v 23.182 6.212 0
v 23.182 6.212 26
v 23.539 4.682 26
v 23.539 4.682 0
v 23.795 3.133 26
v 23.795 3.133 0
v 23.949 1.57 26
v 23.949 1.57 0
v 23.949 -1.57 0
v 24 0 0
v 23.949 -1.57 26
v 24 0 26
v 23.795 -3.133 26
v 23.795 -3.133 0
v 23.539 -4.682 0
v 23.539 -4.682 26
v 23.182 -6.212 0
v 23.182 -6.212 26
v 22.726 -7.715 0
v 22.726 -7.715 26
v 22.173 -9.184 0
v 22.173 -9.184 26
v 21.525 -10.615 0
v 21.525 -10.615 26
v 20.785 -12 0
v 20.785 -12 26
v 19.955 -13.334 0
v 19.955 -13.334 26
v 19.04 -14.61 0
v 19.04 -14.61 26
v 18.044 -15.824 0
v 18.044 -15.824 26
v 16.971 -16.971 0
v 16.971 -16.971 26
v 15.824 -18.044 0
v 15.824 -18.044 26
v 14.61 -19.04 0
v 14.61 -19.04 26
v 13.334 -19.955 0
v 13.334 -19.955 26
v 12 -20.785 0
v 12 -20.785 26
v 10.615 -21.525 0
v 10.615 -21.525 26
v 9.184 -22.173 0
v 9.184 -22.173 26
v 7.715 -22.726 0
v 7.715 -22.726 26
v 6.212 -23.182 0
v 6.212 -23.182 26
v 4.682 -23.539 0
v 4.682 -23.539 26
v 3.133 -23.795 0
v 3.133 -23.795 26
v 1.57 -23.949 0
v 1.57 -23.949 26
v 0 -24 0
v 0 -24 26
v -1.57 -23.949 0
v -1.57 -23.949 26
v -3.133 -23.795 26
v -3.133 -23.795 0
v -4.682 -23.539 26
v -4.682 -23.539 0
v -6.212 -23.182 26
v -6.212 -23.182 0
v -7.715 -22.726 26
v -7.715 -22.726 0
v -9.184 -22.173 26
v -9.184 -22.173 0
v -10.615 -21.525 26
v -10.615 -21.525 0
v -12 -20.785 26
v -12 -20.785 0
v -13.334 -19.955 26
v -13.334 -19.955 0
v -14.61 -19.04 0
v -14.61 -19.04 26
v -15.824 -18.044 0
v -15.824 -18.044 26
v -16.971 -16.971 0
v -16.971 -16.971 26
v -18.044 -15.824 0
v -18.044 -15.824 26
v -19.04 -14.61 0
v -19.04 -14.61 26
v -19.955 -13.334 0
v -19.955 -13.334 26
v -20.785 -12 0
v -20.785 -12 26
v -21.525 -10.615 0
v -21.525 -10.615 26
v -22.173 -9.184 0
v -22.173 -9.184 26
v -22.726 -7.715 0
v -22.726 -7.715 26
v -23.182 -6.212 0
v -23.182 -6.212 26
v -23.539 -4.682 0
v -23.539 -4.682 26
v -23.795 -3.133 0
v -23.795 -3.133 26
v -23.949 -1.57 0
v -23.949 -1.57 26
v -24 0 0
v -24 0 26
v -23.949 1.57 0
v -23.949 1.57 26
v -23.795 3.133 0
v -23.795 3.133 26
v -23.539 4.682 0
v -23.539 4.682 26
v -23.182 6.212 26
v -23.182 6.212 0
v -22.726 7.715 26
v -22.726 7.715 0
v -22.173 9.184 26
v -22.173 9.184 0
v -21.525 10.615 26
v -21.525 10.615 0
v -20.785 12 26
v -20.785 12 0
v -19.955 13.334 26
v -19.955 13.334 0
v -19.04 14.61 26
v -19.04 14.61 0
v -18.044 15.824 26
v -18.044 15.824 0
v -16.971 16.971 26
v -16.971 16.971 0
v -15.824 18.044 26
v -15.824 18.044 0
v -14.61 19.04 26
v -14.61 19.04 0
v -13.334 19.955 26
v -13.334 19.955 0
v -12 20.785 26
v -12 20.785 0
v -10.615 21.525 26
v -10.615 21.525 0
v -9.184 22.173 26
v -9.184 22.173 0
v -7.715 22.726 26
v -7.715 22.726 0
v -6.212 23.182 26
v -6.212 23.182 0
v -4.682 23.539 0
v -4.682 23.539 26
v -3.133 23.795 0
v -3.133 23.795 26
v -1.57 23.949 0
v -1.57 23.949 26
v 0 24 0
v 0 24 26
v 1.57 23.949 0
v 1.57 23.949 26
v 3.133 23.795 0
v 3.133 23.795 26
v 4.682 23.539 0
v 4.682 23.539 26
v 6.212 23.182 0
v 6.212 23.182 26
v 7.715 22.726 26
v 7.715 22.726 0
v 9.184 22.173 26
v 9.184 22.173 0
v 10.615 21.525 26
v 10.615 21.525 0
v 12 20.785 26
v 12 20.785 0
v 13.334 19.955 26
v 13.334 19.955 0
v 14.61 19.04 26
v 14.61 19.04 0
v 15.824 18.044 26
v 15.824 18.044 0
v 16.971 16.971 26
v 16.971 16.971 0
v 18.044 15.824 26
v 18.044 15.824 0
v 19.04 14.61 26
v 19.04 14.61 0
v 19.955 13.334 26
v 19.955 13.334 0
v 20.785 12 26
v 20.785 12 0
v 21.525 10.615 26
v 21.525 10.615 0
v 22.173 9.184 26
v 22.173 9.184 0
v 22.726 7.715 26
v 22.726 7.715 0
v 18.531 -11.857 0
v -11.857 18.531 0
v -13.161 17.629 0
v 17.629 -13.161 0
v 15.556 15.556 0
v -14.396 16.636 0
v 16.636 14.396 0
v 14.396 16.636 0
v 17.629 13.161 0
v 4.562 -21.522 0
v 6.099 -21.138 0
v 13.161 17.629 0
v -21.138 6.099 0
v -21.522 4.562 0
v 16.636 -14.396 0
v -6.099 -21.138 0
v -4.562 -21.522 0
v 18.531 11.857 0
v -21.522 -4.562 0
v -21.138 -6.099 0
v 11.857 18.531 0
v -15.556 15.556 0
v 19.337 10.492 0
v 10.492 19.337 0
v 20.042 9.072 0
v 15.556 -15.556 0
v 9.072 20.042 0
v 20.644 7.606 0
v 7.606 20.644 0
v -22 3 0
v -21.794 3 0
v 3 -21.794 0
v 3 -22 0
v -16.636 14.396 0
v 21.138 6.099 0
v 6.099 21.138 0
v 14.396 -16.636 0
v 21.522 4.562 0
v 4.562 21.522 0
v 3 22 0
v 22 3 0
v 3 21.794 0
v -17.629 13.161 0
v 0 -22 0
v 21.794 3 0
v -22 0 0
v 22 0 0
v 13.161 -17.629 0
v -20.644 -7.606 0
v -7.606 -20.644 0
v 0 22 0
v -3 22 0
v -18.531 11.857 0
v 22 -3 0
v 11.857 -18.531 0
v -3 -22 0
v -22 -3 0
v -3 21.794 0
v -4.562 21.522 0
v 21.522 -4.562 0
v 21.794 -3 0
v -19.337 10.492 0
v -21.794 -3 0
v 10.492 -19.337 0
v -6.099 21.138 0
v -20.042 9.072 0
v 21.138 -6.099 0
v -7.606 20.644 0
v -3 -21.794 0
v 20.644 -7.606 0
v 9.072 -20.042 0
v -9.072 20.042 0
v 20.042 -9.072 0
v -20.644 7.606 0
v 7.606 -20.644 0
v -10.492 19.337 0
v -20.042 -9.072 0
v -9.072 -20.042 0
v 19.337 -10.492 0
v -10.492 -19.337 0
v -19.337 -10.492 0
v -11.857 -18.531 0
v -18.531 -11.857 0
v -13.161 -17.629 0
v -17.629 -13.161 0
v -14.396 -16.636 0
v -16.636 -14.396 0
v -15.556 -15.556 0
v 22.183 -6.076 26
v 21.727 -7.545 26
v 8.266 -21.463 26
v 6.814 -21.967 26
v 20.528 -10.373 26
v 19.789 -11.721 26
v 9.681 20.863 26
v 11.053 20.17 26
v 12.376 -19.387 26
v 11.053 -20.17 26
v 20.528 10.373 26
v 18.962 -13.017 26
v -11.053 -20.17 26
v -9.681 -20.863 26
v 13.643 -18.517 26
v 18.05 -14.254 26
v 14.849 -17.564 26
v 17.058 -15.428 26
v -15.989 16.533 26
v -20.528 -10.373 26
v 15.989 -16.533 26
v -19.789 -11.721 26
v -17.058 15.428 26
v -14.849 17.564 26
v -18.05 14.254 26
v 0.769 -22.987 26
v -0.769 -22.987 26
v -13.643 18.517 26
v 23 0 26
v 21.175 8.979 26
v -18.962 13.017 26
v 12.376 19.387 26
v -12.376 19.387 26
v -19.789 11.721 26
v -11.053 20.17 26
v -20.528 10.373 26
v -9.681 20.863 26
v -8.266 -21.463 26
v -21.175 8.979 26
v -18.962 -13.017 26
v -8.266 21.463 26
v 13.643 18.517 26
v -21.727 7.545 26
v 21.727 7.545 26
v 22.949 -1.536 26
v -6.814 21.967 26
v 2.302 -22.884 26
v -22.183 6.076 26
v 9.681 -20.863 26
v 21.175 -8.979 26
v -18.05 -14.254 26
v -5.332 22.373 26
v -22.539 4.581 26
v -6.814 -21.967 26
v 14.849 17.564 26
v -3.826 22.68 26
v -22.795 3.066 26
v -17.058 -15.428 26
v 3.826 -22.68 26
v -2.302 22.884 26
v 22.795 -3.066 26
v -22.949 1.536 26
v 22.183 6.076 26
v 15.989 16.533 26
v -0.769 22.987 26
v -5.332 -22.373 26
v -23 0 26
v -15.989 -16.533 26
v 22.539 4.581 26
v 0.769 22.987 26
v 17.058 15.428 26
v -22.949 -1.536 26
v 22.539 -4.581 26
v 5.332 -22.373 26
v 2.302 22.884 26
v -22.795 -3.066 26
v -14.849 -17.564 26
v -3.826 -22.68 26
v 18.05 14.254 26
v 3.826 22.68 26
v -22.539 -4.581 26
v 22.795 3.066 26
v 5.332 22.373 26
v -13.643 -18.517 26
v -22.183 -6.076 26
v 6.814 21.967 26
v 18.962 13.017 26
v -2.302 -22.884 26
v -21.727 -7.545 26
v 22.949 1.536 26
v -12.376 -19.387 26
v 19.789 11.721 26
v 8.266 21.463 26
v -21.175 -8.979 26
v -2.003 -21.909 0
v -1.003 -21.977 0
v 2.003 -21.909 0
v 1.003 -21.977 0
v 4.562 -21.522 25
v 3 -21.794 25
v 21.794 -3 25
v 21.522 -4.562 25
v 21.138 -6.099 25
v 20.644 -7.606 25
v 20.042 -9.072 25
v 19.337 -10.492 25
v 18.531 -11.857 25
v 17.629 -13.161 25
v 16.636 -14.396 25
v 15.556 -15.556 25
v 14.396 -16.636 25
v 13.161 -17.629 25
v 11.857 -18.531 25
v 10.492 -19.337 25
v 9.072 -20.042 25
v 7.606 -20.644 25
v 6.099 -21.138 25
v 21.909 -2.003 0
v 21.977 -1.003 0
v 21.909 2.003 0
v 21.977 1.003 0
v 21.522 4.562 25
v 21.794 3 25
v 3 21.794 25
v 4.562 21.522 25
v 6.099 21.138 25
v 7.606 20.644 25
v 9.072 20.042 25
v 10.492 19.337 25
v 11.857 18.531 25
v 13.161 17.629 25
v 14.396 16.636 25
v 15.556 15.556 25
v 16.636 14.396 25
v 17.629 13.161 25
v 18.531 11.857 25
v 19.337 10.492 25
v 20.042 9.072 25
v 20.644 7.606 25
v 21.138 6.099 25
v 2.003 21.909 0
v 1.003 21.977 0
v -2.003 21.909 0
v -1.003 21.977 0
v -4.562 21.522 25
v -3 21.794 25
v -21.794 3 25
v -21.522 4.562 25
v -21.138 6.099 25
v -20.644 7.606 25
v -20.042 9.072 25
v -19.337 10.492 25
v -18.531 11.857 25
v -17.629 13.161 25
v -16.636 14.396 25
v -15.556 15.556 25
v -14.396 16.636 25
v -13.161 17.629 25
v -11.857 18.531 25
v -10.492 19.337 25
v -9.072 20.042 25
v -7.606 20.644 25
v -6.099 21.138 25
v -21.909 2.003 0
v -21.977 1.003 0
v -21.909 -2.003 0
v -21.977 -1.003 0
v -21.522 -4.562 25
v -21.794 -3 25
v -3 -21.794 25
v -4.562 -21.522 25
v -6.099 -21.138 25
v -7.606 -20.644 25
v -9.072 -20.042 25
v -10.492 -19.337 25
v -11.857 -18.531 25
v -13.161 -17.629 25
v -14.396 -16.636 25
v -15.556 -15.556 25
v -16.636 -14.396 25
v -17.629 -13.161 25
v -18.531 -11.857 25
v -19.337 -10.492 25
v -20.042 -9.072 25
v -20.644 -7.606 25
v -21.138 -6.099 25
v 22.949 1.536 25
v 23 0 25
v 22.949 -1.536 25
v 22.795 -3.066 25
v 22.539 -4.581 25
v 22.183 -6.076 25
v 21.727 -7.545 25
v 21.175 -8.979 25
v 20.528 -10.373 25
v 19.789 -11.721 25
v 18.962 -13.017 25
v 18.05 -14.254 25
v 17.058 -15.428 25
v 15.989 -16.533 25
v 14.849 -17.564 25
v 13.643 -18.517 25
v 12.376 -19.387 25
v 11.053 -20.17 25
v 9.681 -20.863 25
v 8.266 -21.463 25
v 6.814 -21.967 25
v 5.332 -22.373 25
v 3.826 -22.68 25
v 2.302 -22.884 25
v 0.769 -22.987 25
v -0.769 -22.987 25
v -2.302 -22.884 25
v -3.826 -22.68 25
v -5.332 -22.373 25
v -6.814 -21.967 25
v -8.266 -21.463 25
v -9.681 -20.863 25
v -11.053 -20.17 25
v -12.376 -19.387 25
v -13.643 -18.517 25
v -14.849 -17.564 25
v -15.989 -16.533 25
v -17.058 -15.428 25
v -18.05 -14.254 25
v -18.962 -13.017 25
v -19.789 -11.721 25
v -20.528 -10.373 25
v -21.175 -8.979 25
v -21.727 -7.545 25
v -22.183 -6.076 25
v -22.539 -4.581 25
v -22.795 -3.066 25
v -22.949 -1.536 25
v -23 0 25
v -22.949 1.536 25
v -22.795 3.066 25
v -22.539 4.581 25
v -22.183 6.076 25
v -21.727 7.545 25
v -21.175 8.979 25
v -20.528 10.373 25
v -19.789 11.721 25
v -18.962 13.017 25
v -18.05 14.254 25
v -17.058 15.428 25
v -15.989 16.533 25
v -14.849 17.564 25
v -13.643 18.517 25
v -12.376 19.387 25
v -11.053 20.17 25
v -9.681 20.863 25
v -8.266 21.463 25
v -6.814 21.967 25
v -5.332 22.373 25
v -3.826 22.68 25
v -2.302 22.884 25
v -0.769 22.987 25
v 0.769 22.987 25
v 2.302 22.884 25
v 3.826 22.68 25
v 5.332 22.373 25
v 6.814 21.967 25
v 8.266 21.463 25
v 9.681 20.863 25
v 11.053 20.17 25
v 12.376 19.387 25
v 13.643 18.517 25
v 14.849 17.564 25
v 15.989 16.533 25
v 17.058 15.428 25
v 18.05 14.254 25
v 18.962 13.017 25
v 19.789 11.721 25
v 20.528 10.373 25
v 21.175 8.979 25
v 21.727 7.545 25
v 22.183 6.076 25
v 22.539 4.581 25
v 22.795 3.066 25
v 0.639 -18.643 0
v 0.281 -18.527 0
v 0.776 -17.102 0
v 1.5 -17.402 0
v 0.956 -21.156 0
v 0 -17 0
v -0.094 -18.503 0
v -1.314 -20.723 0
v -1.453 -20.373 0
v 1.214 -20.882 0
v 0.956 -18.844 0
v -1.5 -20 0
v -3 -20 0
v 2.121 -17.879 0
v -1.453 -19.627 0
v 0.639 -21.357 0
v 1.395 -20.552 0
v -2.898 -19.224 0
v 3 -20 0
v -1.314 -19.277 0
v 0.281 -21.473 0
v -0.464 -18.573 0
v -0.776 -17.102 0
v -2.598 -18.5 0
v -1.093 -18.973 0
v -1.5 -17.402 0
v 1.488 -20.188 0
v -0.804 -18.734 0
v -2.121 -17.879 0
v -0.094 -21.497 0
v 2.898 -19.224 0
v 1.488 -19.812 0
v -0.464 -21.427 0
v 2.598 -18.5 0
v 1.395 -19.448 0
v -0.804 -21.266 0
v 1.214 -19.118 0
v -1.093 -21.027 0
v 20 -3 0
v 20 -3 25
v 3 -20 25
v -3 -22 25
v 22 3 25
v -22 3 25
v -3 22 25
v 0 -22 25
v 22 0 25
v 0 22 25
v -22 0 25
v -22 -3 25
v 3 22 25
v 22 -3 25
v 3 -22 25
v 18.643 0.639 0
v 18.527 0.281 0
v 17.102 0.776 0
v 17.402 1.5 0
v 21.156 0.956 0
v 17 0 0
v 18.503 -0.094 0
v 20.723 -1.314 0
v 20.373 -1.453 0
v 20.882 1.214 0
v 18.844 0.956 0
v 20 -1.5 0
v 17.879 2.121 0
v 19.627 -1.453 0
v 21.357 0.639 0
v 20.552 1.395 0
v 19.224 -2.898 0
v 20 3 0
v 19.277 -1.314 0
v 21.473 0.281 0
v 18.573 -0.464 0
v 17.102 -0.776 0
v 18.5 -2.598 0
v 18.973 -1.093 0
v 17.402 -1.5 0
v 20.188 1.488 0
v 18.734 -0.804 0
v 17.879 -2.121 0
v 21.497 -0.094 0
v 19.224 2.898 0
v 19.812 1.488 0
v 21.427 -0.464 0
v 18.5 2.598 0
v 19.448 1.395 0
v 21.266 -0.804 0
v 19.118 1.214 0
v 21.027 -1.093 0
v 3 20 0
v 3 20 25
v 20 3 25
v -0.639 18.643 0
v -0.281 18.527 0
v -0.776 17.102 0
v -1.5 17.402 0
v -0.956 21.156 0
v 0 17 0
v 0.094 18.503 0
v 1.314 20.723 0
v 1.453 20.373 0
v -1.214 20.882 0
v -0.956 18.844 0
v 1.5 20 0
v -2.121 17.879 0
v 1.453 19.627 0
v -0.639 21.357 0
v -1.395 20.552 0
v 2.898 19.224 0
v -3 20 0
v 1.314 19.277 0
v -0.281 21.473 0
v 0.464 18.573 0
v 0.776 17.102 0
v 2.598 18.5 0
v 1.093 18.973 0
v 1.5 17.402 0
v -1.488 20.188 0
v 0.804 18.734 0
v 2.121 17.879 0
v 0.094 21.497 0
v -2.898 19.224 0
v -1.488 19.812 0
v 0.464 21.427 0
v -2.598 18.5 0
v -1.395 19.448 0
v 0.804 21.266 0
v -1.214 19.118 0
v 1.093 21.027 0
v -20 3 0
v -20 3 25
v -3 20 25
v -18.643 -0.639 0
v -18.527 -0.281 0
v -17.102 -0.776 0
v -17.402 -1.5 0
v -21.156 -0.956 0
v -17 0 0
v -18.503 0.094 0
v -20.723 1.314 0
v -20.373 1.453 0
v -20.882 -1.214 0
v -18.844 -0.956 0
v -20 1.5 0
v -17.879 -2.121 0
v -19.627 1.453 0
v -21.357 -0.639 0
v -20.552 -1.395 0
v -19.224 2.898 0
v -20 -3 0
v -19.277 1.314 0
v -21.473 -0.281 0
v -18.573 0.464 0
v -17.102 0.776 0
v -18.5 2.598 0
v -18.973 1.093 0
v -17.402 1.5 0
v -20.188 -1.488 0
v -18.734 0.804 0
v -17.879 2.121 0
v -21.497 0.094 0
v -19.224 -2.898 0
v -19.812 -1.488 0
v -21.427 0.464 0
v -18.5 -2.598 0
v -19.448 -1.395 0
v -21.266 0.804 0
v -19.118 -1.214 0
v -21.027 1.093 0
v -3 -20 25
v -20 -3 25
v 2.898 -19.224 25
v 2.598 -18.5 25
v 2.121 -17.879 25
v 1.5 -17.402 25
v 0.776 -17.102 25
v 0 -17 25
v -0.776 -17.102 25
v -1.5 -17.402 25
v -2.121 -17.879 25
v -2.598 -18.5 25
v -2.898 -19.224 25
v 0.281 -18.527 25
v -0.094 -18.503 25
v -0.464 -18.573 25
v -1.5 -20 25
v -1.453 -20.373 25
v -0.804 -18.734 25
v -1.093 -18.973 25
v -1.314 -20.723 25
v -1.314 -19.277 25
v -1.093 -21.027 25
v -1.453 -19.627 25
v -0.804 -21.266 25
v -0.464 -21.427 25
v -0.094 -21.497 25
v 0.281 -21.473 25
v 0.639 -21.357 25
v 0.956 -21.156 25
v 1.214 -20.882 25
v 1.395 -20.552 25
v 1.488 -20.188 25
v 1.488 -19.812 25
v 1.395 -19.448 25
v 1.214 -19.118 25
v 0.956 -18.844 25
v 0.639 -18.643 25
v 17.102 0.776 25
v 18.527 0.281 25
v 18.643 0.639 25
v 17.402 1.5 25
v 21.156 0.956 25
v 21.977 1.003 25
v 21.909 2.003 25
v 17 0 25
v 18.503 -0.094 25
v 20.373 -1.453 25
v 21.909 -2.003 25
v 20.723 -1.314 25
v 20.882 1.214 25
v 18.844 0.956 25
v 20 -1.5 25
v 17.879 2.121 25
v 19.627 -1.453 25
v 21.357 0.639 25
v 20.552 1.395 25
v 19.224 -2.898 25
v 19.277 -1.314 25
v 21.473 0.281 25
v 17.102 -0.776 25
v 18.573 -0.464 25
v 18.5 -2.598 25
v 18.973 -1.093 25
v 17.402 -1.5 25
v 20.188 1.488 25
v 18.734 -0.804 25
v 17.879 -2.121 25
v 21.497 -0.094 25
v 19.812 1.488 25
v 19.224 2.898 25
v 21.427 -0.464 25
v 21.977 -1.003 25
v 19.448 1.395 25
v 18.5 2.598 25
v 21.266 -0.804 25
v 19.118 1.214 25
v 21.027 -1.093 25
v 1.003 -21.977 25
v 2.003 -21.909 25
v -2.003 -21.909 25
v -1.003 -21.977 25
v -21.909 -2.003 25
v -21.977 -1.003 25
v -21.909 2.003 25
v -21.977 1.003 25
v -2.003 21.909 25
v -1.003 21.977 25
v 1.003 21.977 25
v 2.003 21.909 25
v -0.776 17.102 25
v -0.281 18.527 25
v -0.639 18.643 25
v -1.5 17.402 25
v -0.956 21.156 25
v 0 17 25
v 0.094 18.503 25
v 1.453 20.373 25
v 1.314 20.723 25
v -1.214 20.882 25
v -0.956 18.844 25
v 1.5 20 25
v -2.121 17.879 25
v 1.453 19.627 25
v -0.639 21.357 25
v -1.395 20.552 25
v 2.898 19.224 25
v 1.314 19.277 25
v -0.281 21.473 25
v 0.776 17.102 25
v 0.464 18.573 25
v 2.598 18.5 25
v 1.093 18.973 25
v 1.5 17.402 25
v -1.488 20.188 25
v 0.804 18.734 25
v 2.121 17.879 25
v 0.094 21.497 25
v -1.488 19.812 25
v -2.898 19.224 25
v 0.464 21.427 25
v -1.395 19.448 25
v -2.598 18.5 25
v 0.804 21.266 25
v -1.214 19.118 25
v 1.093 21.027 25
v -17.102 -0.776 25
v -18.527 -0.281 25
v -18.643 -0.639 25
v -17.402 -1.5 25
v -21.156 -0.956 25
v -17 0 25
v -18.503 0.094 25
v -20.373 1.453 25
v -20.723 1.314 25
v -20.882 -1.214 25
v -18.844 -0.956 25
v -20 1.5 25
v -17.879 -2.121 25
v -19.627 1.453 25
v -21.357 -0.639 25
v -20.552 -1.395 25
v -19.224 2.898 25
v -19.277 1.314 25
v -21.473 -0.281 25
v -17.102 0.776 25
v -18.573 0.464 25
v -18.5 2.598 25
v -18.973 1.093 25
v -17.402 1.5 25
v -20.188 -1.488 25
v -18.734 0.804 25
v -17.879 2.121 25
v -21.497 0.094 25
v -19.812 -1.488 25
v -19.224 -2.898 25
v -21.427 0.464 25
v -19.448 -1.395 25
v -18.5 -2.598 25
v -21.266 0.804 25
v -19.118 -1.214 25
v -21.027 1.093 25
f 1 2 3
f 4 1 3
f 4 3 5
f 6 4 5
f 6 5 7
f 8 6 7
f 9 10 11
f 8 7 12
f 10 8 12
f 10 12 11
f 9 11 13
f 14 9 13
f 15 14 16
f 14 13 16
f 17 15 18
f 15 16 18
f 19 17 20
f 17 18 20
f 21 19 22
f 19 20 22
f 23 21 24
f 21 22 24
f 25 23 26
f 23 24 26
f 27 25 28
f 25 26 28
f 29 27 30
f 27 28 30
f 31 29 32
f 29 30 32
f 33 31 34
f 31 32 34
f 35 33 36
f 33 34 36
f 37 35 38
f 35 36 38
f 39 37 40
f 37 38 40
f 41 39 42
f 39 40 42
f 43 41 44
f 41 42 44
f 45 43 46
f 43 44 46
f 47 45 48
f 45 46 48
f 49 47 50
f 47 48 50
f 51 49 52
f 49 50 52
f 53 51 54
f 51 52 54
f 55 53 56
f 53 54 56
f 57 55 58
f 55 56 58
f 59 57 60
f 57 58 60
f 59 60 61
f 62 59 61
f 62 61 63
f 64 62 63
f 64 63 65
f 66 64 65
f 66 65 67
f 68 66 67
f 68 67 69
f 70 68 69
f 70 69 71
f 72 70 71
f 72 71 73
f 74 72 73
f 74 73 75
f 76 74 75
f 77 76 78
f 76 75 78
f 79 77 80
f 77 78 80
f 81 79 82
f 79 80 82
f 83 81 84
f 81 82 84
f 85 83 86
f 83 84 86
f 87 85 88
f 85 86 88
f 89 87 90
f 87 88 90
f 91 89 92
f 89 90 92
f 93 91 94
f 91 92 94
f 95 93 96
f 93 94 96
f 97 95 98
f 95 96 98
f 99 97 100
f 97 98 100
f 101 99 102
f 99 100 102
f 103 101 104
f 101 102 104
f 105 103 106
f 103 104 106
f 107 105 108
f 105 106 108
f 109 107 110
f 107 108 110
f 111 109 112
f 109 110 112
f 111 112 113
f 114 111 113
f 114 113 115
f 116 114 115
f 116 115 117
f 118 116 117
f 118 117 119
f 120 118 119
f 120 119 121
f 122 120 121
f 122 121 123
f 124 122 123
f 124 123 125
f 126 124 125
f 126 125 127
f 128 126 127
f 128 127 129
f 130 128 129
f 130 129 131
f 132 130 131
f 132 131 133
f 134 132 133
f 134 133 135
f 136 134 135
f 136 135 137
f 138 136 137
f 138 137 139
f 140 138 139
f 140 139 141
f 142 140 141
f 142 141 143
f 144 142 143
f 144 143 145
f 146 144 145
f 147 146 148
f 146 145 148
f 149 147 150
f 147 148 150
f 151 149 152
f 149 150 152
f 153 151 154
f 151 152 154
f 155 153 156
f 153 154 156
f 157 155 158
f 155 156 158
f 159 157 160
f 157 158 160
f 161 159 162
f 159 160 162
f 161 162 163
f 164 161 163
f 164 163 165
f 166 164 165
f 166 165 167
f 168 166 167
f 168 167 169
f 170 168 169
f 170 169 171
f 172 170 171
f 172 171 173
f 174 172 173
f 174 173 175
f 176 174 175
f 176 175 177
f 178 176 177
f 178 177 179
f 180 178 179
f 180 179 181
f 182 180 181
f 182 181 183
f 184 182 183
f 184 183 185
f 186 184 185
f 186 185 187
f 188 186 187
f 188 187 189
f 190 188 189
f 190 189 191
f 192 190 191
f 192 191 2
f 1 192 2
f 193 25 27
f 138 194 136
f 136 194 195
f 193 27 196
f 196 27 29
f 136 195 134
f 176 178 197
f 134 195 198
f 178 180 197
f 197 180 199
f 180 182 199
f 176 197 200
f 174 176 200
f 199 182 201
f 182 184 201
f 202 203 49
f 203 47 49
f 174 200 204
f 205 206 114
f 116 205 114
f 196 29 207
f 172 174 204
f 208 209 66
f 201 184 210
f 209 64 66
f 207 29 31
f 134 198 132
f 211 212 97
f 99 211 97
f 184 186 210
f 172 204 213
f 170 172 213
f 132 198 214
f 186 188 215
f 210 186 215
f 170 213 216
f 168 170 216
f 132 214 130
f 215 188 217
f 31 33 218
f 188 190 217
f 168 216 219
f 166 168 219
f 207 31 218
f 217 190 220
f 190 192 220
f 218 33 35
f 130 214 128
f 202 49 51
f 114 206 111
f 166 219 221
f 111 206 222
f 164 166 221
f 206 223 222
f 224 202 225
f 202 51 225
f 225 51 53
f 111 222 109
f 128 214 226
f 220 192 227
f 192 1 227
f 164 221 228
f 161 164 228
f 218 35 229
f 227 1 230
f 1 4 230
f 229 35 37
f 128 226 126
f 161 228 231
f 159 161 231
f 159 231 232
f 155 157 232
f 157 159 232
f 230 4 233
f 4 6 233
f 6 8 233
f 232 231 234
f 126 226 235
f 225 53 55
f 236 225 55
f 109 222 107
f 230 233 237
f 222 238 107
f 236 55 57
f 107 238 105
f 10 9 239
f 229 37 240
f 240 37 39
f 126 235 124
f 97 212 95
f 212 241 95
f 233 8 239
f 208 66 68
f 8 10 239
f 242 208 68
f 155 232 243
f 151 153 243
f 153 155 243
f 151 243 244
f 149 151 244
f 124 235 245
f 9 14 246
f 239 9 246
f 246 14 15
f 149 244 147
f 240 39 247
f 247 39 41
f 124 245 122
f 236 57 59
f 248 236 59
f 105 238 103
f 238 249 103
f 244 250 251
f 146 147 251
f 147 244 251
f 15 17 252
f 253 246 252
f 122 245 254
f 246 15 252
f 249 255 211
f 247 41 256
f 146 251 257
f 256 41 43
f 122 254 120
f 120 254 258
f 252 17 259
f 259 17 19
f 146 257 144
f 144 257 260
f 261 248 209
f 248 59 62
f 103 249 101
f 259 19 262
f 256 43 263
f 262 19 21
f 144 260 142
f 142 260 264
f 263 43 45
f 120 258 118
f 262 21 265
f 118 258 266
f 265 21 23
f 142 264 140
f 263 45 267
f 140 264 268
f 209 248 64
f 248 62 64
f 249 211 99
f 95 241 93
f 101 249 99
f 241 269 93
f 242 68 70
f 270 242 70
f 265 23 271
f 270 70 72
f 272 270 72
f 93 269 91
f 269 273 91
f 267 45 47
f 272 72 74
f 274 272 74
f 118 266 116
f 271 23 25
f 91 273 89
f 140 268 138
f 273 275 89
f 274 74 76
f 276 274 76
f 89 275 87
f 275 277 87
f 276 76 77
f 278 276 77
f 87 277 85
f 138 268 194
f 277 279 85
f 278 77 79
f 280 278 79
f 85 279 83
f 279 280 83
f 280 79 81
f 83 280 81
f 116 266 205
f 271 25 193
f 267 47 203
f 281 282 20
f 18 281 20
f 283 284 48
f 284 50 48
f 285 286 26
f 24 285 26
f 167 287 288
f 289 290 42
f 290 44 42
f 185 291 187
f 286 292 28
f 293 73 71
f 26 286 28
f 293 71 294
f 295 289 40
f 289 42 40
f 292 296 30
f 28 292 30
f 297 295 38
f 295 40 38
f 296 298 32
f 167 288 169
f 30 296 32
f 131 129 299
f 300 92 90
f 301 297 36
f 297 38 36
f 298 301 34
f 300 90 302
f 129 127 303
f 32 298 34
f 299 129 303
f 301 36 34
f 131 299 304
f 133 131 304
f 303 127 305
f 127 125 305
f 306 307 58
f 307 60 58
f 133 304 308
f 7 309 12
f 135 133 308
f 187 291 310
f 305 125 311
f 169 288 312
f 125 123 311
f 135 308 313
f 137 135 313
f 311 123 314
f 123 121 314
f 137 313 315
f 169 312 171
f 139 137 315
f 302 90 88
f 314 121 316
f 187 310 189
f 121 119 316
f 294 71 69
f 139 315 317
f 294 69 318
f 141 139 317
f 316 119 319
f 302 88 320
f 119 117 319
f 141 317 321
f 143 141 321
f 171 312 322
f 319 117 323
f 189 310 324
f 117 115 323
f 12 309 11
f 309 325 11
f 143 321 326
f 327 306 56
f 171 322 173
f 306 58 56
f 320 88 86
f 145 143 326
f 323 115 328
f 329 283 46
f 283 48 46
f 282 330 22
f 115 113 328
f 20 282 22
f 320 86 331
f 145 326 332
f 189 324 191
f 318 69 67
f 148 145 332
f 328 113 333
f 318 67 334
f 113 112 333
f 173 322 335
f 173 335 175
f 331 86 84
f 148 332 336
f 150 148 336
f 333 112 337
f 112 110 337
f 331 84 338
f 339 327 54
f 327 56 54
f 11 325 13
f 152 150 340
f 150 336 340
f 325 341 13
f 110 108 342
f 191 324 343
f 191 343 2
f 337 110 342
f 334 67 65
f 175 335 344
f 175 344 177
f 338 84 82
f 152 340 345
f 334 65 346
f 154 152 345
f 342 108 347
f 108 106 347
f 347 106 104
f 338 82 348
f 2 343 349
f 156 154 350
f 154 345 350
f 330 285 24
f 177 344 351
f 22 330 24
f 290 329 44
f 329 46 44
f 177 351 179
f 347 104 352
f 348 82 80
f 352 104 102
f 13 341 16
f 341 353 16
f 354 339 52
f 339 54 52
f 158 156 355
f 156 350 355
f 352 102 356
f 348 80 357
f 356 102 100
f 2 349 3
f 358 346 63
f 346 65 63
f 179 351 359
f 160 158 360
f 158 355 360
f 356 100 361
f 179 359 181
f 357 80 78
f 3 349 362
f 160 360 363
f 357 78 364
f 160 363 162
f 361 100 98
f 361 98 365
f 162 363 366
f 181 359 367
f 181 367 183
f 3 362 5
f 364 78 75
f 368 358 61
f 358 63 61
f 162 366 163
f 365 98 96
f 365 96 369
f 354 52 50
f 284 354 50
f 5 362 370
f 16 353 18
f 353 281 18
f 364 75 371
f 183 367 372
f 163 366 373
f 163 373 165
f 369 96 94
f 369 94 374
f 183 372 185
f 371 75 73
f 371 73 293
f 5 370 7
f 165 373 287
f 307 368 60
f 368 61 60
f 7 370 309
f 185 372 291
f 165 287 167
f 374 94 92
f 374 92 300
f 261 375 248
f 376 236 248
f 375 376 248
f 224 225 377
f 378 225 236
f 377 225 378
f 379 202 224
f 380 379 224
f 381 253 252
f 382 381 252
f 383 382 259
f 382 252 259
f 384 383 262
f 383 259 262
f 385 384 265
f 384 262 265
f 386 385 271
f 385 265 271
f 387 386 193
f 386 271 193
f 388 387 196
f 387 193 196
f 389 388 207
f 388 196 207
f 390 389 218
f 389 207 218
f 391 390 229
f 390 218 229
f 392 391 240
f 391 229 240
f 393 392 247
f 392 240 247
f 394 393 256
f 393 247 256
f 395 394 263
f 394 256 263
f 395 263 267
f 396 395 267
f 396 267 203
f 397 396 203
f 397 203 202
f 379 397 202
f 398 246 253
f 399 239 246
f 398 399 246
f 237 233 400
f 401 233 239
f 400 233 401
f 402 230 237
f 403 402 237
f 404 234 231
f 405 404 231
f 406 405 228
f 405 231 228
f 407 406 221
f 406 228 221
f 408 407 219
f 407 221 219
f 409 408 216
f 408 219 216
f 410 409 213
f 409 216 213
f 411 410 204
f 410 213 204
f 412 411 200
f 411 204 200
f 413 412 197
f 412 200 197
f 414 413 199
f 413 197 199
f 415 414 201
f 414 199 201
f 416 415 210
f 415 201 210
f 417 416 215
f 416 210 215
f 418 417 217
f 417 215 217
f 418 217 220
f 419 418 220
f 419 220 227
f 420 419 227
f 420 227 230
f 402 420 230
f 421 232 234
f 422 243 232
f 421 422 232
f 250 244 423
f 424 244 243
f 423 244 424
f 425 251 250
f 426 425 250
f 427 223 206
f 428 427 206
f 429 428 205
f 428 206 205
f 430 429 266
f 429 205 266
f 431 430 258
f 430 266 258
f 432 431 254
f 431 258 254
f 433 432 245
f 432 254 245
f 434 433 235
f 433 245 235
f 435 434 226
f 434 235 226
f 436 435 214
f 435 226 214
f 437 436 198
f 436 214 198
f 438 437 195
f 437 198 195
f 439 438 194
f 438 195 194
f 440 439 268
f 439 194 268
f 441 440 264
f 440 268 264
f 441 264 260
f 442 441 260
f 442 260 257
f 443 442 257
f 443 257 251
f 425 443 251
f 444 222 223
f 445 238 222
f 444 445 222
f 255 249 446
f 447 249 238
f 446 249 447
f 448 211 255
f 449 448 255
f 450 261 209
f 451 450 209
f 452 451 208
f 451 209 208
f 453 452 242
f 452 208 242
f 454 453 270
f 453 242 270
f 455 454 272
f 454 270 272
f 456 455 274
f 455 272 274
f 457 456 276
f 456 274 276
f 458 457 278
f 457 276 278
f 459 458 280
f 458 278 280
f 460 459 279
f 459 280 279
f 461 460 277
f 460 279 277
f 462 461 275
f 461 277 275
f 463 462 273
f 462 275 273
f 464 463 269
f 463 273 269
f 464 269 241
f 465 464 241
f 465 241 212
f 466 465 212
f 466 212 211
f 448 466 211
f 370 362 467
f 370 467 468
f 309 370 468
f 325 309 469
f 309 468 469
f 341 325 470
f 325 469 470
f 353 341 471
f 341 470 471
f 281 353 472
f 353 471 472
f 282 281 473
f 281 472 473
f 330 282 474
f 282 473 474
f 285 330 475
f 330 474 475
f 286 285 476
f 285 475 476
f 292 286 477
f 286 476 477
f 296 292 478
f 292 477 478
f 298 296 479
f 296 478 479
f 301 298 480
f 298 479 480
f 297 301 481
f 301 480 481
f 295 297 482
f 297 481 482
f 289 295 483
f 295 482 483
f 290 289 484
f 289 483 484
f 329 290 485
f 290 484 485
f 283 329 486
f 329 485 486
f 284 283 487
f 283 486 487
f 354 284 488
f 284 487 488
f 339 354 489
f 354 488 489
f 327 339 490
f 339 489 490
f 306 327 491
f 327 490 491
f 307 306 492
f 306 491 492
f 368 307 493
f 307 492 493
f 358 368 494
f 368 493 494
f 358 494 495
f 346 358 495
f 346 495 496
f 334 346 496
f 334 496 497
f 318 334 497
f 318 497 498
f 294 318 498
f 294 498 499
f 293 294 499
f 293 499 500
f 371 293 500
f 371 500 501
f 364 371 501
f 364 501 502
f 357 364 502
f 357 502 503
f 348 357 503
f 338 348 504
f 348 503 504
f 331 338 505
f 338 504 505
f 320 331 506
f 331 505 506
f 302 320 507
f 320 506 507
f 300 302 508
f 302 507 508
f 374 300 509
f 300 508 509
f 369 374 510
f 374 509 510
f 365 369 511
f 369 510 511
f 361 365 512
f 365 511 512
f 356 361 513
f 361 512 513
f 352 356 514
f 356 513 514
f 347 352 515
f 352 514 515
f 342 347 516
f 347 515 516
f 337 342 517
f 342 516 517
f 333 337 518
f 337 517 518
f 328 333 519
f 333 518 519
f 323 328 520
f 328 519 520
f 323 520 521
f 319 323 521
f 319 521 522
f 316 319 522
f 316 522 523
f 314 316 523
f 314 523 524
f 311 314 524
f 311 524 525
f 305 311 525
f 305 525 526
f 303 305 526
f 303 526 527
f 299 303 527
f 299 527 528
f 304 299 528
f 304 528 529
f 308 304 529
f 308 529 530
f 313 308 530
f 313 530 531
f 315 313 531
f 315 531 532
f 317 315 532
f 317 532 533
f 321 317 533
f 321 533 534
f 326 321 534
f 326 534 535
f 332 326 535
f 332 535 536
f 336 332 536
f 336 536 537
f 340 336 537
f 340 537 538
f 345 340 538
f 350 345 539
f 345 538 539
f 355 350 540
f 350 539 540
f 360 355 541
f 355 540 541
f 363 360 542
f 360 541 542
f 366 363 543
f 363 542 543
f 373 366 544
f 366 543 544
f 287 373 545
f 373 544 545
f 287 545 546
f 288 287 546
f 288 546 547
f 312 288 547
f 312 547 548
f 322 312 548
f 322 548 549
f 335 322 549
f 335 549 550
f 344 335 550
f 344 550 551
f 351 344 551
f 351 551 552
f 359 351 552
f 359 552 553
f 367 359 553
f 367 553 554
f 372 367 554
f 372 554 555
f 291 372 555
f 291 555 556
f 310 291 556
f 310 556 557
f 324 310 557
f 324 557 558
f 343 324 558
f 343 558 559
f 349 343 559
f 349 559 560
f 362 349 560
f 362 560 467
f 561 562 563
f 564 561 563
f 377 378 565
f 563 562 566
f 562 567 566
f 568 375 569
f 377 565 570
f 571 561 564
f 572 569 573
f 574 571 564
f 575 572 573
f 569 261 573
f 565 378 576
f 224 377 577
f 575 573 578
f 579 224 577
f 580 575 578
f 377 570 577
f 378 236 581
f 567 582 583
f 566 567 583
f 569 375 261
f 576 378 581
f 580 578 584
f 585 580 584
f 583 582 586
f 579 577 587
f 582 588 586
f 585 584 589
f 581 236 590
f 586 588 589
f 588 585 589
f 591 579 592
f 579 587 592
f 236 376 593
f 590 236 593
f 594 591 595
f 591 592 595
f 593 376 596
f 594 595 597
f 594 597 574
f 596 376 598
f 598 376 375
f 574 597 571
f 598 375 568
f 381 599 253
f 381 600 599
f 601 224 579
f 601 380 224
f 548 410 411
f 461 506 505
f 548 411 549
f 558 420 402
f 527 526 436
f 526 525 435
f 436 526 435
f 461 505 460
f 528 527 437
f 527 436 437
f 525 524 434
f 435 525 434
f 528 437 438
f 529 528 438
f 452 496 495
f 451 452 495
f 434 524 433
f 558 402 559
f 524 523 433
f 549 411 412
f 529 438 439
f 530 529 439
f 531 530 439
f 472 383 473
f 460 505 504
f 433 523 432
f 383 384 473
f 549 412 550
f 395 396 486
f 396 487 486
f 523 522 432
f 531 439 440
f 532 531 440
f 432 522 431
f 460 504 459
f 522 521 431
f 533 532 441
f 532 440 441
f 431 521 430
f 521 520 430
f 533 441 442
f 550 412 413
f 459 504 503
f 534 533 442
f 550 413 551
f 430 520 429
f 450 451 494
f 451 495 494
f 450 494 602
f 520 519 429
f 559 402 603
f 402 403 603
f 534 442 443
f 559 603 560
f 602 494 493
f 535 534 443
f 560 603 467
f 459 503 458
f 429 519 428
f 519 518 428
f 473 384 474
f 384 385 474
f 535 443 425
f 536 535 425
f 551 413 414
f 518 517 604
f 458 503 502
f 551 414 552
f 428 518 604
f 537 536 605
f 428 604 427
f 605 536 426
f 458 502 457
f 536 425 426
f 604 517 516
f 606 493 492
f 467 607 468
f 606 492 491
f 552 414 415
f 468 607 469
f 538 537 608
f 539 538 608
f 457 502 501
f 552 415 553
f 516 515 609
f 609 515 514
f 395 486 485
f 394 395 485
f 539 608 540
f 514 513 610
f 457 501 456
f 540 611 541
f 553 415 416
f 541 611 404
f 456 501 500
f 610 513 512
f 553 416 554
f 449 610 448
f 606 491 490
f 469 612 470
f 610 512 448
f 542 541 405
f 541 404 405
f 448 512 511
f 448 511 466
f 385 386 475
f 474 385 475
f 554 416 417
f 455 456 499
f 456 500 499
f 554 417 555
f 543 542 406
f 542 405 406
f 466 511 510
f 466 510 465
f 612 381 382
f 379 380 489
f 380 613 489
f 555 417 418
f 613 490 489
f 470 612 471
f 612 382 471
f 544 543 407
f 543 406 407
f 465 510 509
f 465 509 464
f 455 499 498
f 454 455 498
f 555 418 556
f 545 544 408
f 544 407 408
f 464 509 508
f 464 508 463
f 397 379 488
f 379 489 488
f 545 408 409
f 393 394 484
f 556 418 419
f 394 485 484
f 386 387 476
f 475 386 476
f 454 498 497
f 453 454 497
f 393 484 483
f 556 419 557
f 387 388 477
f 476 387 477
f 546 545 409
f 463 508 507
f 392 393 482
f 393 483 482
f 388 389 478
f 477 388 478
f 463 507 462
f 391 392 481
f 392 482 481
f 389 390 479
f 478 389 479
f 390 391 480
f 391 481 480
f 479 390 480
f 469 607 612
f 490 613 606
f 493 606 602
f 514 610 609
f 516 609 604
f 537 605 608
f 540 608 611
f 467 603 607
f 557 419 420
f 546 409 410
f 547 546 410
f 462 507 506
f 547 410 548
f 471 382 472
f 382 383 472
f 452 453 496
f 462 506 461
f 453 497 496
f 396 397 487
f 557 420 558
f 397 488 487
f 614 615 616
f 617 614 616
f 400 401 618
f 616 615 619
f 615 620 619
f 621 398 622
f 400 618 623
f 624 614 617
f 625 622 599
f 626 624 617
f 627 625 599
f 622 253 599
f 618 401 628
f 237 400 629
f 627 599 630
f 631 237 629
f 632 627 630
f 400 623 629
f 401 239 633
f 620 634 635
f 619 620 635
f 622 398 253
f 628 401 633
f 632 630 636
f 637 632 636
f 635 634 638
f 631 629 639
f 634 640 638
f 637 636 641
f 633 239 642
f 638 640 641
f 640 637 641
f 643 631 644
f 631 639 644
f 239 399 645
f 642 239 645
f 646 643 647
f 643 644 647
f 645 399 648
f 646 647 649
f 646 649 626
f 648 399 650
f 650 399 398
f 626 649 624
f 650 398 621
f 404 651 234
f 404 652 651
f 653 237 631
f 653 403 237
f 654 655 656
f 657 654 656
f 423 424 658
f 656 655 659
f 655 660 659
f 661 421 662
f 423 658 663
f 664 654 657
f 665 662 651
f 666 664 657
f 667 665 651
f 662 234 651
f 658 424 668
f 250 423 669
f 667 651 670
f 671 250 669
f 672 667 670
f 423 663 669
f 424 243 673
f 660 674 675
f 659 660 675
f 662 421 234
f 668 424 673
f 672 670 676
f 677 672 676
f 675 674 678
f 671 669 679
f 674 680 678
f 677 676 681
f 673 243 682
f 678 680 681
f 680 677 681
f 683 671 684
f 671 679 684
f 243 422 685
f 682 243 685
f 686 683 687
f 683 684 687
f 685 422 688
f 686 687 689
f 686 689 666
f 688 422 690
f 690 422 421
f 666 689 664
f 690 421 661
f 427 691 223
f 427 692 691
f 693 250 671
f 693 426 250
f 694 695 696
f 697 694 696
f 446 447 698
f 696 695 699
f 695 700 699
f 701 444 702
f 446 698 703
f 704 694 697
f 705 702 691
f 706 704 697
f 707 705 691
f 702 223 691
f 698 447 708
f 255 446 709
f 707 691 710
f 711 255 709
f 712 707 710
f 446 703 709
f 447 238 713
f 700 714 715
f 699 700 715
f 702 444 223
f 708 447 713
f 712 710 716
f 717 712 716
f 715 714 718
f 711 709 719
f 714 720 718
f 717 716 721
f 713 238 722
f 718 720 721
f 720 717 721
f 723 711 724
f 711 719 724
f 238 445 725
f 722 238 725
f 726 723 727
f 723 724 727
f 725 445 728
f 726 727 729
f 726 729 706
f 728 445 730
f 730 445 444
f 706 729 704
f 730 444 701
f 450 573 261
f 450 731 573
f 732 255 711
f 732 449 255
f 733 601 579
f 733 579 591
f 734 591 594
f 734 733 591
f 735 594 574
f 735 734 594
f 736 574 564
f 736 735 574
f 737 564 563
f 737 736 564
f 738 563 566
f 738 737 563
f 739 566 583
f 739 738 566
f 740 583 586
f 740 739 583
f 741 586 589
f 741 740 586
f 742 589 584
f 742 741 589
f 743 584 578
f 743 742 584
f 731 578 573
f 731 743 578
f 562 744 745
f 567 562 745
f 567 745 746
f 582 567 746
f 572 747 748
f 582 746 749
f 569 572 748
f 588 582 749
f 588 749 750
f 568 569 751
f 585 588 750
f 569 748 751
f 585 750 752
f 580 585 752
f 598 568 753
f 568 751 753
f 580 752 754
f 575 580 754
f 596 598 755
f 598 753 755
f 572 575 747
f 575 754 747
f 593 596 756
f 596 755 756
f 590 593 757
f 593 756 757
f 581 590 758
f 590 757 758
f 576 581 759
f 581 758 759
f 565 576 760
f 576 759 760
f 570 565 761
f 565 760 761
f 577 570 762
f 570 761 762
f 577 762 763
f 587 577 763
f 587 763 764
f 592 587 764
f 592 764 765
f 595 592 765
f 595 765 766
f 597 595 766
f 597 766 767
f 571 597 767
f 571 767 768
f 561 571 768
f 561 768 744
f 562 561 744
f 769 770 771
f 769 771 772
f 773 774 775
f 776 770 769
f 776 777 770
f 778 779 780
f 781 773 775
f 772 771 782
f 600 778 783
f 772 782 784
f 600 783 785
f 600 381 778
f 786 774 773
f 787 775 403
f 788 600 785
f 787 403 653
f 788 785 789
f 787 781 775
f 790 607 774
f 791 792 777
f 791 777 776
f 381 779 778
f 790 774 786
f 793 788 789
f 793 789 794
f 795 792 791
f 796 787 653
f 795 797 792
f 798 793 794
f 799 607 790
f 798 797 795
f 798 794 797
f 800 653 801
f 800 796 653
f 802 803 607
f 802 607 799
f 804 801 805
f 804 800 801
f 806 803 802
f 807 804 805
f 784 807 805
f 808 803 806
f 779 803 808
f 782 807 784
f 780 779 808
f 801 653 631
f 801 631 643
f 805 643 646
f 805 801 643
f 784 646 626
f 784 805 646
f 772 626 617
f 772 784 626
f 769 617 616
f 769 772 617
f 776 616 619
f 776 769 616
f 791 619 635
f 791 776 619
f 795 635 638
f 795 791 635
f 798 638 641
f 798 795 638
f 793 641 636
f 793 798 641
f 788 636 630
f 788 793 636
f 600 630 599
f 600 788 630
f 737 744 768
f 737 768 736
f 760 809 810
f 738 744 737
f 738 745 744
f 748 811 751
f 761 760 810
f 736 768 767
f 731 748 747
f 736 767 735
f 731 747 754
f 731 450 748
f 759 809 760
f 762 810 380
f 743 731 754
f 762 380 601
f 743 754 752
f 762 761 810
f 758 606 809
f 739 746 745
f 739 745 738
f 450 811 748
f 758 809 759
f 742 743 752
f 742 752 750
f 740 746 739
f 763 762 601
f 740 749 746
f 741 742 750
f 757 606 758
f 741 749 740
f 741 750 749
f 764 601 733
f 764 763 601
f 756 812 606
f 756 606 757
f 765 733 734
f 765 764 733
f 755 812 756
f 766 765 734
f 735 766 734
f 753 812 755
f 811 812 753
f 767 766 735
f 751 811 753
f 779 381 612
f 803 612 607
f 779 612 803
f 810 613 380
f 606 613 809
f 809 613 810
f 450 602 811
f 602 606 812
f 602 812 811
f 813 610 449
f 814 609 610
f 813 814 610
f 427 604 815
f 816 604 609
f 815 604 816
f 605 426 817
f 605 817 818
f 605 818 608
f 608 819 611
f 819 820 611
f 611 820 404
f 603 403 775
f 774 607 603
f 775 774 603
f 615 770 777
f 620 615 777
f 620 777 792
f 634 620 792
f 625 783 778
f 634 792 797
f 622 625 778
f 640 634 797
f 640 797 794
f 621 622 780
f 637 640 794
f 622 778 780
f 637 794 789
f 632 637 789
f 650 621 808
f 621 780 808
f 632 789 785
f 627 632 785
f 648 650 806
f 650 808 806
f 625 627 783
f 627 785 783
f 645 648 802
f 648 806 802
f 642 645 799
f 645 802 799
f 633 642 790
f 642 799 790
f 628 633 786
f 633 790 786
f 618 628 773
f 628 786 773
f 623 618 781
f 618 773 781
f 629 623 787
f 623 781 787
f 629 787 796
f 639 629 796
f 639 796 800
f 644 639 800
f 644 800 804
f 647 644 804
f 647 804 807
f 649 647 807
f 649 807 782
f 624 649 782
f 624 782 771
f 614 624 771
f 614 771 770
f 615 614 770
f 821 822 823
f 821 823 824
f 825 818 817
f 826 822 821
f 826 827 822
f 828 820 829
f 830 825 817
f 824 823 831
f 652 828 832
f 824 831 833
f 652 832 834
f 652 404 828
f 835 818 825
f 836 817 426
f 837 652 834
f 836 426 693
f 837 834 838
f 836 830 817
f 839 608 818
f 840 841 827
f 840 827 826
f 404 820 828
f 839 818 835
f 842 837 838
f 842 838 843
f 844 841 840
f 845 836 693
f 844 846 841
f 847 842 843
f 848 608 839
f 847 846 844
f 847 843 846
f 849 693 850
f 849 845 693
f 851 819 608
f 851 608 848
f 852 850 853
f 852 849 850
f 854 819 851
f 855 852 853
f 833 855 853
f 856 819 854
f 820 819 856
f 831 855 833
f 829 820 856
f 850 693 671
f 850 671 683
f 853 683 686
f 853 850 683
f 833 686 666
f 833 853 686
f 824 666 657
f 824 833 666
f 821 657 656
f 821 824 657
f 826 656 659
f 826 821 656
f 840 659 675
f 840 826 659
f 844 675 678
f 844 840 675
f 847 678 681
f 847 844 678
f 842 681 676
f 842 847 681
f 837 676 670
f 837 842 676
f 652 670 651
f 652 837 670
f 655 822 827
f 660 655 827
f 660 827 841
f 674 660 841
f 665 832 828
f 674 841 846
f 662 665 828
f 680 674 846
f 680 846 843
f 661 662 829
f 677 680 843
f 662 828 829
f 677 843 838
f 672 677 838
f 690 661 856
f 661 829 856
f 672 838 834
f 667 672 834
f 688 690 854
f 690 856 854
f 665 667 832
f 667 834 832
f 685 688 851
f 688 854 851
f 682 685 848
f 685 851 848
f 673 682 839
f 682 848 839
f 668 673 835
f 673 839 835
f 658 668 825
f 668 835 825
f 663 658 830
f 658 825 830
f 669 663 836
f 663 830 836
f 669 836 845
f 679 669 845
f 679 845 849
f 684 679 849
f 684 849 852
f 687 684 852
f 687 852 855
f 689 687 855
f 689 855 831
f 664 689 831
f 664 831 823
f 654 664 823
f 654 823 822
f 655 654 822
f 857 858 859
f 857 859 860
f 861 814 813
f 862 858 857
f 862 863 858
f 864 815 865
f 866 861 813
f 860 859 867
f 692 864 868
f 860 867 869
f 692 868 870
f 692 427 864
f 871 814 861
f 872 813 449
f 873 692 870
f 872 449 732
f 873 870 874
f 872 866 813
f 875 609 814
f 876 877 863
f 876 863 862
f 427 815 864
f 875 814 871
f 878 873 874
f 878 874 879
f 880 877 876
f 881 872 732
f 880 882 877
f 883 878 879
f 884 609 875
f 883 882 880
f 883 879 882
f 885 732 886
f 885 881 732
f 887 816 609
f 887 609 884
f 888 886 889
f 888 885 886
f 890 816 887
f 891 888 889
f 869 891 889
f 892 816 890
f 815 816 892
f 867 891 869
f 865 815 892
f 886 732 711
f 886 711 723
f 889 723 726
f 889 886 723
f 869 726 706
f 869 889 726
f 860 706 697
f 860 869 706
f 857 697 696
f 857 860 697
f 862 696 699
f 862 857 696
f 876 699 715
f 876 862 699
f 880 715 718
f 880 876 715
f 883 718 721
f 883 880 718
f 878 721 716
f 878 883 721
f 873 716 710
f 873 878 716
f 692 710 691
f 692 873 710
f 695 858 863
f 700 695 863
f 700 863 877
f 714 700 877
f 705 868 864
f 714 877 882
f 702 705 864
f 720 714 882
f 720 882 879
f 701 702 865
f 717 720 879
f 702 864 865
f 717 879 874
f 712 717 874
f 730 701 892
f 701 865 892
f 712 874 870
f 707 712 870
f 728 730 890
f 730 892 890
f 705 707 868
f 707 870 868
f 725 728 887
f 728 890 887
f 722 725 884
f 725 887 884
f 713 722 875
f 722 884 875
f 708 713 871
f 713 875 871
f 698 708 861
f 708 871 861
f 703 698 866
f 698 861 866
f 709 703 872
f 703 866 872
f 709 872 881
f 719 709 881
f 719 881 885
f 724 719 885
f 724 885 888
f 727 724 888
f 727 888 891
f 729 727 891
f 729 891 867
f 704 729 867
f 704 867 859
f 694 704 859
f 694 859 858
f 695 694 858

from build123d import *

# Parameters (mm, degrees)
SKETCH002_R        = 1.5
PAD_DEPTH          = 25
POLARPATTERN_COUNT = 4


with BuildPart() as part:
    # Sketch → Revolution (revolve)
    with BuildSketch(Plane.XZ):
        Polygon((24, 0), (24, 26), (23, 26), (23, 25), (22, 25), (22, 0), align=None)
    revolve(axis=Axis((0, 0, 0), (0, 0, 1)))

    # Sketch002 → Pad (new body)
    with BuildSketch(Plane(origin=(0, 0, 25), x_dir=(-1, 0, 0), z_dir=(0, 0, 1))):
        with BuildLine():
            Line((-3, 22), (-3, 20))
            ThreePointArc((-3, 20), (0, 17), (3, 20))
            Line((3, 20), (3, 22))
            Line((-3, 22), (3, 22))
        make_face()
        with Locations((0, 20)):
            Circle(SKETCH002_R, mode=Mode.SUBTRACT)
    pad = extrude(amount=-PAD_DEPTH)

    # PolarPattern: Pad ×4 about axis
    polarpattern_axis = Axis((0, 0, 25), (0, 0, 1))
    for i in range(1, POLARPATTERN_COUNT):
        add(pad.rotate(polarpattern_axis, i * 360 / POLARPATTERN_COUNT))


solid = part.part
